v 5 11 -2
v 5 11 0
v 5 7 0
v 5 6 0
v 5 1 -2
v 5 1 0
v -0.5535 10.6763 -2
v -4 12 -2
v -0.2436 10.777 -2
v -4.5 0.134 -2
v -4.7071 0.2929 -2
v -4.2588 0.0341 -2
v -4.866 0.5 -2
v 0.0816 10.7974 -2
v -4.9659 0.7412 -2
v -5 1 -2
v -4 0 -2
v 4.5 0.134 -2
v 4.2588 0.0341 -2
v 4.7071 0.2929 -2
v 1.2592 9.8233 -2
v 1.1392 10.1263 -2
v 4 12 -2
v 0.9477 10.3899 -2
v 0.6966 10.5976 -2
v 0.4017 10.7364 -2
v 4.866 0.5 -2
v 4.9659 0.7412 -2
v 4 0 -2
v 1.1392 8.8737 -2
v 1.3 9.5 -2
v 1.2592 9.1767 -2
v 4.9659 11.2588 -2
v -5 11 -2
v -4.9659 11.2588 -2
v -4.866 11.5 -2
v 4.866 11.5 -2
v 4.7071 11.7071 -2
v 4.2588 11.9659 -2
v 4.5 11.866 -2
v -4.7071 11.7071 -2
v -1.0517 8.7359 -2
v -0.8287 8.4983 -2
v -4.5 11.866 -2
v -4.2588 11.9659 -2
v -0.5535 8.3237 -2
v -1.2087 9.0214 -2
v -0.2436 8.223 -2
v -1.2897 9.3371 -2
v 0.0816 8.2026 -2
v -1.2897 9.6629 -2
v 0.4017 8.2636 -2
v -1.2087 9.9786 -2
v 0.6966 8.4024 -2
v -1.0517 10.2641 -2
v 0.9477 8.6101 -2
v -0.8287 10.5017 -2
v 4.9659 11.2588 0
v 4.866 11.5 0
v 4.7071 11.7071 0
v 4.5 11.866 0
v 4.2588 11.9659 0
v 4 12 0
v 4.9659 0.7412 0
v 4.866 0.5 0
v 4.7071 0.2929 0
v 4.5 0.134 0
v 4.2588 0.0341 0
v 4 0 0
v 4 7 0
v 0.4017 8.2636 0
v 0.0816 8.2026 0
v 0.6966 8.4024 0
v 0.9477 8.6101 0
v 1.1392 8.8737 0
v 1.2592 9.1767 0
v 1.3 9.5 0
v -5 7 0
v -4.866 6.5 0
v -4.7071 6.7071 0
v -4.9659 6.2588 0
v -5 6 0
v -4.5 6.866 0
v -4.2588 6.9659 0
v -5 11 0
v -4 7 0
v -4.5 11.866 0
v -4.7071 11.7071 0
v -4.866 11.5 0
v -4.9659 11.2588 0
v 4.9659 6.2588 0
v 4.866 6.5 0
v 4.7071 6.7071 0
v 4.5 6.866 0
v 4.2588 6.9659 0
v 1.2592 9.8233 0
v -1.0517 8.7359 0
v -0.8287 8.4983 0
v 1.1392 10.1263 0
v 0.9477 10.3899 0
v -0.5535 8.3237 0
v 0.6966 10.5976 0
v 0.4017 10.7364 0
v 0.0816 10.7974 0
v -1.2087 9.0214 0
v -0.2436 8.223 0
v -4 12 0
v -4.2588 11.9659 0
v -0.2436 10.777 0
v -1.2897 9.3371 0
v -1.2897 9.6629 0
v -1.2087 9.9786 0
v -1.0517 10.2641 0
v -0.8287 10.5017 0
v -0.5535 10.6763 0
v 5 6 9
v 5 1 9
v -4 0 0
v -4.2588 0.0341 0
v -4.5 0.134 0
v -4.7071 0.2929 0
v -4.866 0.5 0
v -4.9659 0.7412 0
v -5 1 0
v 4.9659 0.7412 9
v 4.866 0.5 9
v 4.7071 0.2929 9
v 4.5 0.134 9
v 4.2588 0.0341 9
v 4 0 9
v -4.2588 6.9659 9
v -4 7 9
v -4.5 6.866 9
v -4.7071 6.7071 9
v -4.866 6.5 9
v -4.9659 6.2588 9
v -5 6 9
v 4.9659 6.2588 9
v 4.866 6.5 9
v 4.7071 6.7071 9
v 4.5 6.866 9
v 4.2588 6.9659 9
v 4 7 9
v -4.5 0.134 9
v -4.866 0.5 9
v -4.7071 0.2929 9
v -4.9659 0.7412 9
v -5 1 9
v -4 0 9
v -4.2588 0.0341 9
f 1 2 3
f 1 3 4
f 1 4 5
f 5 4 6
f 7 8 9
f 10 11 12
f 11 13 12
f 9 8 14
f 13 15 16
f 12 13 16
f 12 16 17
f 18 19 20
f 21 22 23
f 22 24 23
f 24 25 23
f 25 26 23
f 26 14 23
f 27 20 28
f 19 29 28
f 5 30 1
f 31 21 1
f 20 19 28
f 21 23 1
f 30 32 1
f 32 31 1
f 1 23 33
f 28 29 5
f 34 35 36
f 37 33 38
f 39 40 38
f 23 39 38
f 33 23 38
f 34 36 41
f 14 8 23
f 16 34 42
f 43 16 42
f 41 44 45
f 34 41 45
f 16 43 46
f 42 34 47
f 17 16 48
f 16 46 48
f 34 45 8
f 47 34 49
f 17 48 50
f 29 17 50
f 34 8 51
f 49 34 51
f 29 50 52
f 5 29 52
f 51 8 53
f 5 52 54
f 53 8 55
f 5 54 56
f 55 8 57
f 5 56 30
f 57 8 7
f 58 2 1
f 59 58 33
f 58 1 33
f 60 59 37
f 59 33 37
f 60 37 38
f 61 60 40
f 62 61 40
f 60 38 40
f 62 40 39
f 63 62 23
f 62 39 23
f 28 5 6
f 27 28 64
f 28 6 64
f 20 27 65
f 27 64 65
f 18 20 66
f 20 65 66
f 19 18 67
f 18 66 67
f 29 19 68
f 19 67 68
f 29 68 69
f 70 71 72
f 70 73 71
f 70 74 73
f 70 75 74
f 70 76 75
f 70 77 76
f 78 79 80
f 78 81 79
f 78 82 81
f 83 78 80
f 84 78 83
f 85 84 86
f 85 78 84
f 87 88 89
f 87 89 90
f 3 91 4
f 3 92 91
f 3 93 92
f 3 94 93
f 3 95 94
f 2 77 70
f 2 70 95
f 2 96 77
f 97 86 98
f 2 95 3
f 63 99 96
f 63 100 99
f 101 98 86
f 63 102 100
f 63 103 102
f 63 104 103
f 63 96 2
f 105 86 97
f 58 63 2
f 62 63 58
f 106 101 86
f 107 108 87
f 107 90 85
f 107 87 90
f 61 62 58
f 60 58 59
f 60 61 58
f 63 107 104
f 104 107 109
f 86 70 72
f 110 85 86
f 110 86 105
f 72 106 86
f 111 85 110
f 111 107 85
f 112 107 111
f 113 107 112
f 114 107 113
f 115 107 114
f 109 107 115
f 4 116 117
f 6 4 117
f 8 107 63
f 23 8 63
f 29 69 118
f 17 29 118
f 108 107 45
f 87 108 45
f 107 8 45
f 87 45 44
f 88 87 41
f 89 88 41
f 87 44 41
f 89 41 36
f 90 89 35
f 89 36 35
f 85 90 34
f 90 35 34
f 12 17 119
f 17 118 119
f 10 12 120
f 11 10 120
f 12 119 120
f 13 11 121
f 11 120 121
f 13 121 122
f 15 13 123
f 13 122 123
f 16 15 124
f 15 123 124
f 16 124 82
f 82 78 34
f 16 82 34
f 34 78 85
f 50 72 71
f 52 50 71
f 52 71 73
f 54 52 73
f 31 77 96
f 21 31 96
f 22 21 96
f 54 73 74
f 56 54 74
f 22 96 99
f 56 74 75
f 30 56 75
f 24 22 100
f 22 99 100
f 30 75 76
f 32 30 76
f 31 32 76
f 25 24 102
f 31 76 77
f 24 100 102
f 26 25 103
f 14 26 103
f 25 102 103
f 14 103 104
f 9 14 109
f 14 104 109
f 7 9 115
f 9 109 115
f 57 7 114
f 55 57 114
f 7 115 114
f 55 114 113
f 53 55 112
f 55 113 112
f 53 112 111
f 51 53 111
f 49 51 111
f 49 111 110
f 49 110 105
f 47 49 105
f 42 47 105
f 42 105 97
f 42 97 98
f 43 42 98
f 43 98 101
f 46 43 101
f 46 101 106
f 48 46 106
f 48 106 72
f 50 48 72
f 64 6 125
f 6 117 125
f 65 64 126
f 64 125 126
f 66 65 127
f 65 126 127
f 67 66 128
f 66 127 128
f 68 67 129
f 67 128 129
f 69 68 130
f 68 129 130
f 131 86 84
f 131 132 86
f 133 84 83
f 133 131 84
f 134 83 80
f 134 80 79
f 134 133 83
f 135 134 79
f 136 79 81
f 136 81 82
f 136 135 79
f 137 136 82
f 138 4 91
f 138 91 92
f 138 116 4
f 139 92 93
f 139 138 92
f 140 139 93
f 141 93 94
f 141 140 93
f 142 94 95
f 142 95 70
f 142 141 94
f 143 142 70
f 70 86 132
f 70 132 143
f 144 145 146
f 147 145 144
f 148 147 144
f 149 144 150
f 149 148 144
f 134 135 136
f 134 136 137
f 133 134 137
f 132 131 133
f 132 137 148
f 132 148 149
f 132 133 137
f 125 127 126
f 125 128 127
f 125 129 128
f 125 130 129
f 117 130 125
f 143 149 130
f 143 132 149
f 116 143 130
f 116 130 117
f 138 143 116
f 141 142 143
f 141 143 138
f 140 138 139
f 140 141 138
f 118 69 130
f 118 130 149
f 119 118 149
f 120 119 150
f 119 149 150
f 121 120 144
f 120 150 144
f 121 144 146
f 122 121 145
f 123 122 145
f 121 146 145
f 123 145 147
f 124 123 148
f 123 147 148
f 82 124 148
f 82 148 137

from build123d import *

# Parameters (mm, degrees)
SKETCH001_W  = 10
SKETCH001_H  = 7
PAD001_DEPTH = 9
SKETCH_W     = 10
SKETCH_H     = 12
SKETCH_R     = 1.3
PAD_DEPTH    = 2
FILLET_R     = 1
FILLET001_R  = 1


with BuildPart() as pad001:
    # Sketch001 → Pad001 (new body)
    with BuildSketch(Plane.XY):
        with Locations((0, 3.5)):
            Rectangle(SKETCH001_W, SKETCH001_H)
    extrude(amount=PAD001_DEPTH)


with BuildPart() as fillet001:
    # Sketch → Pad (new body)
    with BuildSketch(Plane.XY):
        with Locations((0, 6)):
            Rectangle(SKETCH_W, SKETCH_H)
        with Locations((0, 9.5)):
            Circle(SKETCH_R, mode=Mode.SUBTRACT)
    extrude(amount=-PAD_DEPTH)

    # Fusion: union Pad001
    add(pad001.part)

    # Fillet
    fillet_edges = [fillet001.edges().sort_by_distance(p)[0] for p in [
        (5, 0, 4.5),
        (5, 0, -1),
    ]]
    fillet(fillet_edges, radius=FILLET_R)

    # Fillet001
    fillet001_edges = [fillet001.edges().sort_by_distance(p)[0] for p in [
        (-5, 0, 4.5),
        (-5, 0, -1),
        (-5, 7, 4.5),
        (-5, 12, -1),
        (5, 7, 4.5),
        (5, 12, -1),
    ]]
    fillet(fillet001_edges, radius=FILLET001_R)


solid = fillet001.part
